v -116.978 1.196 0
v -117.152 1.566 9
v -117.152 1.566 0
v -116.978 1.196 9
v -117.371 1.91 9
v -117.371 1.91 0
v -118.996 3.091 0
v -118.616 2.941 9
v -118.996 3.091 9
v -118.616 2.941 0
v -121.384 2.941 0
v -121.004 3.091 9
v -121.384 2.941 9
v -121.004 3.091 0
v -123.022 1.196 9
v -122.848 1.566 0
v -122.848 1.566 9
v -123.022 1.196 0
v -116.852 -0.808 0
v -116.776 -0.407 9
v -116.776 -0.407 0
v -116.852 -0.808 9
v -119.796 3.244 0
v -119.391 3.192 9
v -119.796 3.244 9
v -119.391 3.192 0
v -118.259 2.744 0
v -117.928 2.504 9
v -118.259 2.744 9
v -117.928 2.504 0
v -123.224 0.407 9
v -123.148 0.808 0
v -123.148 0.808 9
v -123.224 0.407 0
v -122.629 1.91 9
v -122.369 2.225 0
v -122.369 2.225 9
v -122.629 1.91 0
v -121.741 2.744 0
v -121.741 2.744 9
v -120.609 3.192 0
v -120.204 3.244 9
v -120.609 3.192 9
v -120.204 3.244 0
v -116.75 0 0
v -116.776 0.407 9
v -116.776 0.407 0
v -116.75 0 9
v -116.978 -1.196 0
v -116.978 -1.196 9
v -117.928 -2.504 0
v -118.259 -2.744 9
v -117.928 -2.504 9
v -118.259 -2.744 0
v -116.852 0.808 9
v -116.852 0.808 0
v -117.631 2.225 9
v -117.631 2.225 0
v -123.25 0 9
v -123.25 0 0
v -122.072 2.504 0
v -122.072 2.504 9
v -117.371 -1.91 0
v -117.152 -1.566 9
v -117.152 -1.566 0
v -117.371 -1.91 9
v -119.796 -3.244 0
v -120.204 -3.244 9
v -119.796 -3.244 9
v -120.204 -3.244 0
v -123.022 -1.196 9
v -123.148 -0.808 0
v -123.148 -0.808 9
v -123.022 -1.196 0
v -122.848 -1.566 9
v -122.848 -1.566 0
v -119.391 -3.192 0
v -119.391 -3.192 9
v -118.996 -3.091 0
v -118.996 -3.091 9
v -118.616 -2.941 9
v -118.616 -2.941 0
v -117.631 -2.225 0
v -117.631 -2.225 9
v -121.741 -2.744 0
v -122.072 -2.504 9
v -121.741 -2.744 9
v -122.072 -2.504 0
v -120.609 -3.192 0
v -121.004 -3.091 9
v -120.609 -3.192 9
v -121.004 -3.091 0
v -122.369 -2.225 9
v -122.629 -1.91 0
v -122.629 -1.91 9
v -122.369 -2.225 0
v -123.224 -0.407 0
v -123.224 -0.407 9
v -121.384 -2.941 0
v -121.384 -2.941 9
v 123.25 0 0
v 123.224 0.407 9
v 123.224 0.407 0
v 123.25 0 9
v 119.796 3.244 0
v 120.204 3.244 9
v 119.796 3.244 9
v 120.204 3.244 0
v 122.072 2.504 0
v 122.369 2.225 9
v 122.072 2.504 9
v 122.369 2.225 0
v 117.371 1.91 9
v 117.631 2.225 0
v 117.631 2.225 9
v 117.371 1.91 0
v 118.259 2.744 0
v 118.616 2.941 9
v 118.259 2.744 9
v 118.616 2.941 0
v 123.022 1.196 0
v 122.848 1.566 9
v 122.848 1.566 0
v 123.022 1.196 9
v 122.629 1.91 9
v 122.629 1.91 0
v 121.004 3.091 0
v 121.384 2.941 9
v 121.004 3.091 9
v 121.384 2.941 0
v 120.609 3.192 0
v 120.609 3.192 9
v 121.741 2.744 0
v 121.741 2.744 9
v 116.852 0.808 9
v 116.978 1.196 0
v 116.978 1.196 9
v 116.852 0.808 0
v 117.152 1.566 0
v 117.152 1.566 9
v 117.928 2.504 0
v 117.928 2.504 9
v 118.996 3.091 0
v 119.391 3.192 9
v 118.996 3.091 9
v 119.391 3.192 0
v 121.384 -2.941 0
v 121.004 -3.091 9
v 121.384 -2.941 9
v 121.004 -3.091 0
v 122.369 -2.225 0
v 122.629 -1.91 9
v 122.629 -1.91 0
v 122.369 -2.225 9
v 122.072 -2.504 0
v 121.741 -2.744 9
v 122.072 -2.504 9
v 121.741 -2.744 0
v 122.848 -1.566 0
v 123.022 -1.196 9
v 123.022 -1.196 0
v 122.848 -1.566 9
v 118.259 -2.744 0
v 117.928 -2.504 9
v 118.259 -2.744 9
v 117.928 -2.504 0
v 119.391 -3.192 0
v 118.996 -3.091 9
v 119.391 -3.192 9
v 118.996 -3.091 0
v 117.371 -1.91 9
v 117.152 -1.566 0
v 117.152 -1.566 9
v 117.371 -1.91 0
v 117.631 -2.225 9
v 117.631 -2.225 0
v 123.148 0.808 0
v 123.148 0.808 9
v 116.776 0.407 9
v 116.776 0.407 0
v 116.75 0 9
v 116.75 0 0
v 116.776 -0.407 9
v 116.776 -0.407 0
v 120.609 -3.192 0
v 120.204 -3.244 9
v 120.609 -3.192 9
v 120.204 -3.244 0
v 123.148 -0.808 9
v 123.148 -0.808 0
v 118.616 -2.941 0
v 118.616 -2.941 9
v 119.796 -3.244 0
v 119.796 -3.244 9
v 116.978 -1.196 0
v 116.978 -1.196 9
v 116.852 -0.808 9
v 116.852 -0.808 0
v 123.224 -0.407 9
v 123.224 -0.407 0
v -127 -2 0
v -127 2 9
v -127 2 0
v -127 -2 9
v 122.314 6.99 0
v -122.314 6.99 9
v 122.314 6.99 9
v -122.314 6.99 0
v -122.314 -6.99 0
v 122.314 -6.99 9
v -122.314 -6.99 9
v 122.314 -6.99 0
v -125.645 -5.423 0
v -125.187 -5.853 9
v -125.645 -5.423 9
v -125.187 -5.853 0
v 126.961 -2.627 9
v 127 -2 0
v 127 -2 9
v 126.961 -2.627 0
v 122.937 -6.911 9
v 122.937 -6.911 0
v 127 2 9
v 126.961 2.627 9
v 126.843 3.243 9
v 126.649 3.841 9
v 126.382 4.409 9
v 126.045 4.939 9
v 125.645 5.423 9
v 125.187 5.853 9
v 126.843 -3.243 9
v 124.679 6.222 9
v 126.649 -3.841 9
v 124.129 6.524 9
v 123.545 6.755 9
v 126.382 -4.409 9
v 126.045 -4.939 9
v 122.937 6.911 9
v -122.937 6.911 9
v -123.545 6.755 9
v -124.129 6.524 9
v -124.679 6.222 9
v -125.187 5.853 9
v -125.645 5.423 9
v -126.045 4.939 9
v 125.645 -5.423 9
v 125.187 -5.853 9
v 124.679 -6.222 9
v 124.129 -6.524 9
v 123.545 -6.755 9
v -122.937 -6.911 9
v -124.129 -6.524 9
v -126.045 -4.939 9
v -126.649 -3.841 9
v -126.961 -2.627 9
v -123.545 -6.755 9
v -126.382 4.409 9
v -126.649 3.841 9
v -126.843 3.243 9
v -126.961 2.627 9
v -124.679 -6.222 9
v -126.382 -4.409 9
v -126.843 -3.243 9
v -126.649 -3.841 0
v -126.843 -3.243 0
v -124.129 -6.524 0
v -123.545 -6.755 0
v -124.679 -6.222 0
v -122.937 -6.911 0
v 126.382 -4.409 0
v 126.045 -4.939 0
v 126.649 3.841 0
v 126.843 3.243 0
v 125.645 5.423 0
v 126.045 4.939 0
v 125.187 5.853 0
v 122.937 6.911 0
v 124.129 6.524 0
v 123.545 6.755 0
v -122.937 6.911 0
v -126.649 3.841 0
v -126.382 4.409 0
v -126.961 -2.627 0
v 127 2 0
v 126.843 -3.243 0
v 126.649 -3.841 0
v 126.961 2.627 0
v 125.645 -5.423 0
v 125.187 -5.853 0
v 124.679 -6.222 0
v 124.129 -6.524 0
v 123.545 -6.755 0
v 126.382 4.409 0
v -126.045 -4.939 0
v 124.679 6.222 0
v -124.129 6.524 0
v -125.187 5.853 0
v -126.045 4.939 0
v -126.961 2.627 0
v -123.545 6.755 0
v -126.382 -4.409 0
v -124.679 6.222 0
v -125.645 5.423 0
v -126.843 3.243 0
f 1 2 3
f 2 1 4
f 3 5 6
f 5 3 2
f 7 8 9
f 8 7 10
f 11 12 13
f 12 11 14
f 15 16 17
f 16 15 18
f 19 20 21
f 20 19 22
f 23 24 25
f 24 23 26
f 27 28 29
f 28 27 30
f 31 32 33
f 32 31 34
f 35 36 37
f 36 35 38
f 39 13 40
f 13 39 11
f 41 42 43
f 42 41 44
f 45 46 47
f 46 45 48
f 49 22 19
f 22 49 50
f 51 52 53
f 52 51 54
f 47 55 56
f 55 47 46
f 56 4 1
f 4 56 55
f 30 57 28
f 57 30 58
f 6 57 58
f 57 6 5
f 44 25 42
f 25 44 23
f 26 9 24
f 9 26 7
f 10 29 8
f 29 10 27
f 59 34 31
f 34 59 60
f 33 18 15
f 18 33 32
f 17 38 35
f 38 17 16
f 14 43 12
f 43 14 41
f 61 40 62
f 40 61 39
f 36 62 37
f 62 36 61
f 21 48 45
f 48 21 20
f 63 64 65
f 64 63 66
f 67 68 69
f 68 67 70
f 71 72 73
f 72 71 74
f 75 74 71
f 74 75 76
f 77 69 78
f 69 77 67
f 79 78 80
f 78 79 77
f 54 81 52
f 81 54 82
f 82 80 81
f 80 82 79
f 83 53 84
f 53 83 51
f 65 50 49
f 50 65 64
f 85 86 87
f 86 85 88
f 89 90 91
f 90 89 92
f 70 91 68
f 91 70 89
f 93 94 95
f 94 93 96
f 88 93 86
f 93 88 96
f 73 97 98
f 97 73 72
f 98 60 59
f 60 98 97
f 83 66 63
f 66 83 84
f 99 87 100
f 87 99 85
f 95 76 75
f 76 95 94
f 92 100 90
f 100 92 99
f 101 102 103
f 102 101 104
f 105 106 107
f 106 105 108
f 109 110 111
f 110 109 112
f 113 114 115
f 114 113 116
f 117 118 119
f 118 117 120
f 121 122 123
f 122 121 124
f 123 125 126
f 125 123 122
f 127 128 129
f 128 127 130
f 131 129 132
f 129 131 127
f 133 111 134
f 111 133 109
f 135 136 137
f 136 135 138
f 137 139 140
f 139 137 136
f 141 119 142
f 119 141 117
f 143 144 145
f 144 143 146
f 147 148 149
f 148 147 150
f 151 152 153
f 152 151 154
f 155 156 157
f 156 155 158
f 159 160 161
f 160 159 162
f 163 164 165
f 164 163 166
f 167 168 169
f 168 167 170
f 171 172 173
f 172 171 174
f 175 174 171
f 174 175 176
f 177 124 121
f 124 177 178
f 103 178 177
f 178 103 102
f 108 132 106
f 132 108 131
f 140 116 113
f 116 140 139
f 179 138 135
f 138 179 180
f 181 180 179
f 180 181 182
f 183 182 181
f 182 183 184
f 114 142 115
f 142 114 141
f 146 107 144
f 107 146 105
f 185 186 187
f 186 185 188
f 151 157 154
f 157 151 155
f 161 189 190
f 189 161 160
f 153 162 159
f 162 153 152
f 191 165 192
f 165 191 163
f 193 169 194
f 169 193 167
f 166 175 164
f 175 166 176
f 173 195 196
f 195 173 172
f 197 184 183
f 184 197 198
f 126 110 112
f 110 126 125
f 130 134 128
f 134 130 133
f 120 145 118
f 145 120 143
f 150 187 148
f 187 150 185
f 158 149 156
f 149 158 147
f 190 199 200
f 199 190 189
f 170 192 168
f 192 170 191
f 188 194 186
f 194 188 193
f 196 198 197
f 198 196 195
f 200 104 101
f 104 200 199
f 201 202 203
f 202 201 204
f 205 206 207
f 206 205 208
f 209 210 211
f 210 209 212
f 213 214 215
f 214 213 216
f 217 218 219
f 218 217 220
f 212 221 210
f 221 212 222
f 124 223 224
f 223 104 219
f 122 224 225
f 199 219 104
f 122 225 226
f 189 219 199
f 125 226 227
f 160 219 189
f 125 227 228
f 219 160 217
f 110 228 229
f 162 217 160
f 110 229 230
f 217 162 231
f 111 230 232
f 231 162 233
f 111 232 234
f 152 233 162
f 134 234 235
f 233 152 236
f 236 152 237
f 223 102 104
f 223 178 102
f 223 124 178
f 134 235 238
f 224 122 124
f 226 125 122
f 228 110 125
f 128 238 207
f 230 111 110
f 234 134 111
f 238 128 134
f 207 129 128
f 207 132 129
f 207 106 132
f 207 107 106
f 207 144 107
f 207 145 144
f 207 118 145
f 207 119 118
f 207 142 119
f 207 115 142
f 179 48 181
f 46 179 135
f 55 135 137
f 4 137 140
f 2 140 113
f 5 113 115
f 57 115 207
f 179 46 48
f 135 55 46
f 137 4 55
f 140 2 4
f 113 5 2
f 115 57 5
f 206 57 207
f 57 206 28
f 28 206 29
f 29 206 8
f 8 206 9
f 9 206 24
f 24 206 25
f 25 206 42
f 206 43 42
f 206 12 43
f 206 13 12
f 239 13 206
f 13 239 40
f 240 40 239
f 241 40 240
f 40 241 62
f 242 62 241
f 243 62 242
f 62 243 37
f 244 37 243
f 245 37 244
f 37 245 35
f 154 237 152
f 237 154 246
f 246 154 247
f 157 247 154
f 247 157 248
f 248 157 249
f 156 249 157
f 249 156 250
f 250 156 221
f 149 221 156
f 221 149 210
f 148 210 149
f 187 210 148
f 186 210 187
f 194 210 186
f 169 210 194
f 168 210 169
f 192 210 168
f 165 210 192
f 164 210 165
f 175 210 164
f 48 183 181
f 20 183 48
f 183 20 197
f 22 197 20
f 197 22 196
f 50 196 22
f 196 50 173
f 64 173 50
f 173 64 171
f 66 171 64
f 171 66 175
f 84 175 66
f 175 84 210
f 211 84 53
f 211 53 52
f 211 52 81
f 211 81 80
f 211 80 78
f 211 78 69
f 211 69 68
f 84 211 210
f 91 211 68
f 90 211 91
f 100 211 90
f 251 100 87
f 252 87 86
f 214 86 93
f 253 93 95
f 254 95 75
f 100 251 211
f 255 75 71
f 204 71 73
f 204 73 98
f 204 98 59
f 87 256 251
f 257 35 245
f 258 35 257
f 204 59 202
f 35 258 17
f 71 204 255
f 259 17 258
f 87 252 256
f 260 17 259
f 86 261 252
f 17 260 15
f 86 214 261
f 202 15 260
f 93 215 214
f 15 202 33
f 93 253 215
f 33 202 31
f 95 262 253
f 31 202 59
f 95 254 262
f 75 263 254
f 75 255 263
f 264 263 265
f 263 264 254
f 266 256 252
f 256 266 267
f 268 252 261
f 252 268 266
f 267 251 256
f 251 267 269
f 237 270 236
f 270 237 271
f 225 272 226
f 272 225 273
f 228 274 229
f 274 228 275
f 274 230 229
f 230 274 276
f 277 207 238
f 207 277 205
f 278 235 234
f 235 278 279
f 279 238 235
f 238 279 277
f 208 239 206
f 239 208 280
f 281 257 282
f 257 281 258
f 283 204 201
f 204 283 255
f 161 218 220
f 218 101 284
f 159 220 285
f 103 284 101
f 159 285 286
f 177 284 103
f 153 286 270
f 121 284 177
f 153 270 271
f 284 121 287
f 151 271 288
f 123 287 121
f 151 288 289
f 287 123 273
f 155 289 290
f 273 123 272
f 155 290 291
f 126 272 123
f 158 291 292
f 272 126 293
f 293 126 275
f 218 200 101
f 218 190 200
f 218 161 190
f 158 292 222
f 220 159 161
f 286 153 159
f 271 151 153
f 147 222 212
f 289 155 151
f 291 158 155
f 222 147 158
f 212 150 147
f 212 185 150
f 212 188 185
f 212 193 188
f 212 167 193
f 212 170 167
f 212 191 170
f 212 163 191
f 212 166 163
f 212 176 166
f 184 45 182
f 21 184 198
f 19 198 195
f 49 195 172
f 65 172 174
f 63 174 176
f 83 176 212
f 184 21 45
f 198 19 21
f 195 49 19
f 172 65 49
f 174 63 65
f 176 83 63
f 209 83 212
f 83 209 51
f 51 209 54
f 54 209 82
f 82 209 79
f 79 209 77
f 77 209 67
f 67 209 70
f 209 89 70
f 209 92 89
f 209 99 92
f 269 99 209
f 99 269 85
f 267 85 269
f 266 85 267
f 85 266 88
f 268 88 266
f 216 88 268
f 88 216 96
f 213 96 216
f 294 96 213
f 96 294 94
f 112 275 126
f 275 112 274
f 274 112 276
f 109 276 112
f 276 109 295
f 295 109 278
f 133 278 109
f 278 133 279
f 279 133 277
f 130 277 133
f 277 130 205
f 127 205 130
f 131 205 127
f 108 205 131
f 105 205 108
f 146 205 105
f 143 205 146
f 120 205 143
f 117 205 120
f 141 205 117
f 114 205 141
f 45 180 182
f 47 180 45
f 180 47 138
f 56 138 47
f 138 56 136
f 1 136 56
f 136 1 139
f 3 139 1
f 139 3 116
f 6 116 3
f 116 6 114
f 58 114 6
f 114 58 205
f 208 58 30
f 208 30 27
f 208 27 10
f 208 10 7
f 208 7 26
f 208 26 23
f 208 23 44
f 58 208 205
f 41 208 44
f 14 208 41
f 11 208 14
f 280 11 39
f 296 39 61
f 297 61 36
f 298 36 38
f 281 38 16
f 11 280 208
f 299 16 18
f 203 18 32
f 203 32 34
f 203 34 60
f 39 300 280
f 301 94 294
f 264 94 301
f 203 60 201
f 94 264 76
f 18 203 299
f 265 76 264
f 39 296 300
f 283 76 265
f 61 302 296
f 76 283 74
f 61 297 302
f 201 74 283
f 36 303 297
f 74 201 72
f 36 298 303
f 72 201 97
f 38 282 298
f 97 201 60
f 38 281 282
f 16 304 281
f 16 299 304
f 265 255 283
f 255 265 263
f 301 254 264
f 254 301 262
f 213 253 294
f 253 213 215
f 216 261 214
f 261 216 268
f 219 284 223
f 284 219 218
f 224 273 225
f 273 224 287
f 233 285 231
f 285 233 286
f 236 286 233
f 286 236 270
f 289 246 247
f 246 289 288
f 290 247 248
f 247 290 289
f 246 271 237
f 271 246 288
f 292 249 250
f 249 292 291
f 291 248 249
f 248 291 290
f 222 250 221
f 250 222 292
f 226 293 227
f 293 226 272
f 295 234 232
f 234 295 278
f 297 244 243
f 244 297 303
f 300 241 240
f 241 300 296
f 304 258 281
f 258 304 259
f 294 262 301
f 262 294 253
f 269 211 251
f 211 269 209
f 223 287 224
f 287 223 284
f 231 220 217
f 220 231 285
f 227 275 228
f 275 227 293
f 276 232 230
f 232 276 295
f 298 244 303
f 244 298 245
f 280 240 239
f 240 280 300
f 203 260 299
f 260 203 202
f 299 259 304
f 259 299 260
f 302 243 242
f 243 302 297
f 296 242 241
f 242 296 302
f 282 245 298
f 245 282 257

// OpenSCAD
$fn = 50;


difference() {
	union() {
		hull() {
			translate(v = [-122.0000000000, 2.0000000000, 0]) {
				cylinder(h = 9, r = 5);
			}
			translate(v = [122.0000000000, 2.0000000000, 0]) {
				cylinder(h = 9, r = 5);
			}
			translate(v = [-122.0000000000, -2.0000000000, 0]) {
				cylinder(h = 9, r = 5);
			}
			translate(v = [122.0000000000, -2.0000000000, 0]) {
				cylinder(h = 9, r = 5);
			}
		}
	}
	union() {
		translate(v = [-120.0000000000, 0.0000000000, 0]) {
			cylinder(h = 9, r = 3.2500000000);
		}
		translate(v = [120.0000000000, 0.0000000000, 0]) {
			cylinder(h = 9, r = 3.2500000000);
		}
		translate(v = [-120.0000000000, 0.0000000000, 0]) {
			cylinder(h = 9, r = 1.8000000000);
		}
		translate(v = [120.0000000000, 0.0000000000, 0]) {
			cylinder(h = 9, r = 1.8000000000);
		}
		translate(v = [-120.0000000000, 0.0000000000, 0]) {
			cylinder(h = 9, r = 1.8000000000);
		}
		translate(v = [120.0000000000, 0.0000000000, 0]) {
			cylinder(h = 9, r = 1.8000000000);
		}
		translate(v = [-120.0000000000, 0.0000000000, 0]) {
			cylinder(h = 9, r = 1.8000000000);
		}
		translate(v = [120.0000000000, 0.0000000000, 0]) {
			cylinder(h = 9, r = 1.8000000000);
		}
	}
}
